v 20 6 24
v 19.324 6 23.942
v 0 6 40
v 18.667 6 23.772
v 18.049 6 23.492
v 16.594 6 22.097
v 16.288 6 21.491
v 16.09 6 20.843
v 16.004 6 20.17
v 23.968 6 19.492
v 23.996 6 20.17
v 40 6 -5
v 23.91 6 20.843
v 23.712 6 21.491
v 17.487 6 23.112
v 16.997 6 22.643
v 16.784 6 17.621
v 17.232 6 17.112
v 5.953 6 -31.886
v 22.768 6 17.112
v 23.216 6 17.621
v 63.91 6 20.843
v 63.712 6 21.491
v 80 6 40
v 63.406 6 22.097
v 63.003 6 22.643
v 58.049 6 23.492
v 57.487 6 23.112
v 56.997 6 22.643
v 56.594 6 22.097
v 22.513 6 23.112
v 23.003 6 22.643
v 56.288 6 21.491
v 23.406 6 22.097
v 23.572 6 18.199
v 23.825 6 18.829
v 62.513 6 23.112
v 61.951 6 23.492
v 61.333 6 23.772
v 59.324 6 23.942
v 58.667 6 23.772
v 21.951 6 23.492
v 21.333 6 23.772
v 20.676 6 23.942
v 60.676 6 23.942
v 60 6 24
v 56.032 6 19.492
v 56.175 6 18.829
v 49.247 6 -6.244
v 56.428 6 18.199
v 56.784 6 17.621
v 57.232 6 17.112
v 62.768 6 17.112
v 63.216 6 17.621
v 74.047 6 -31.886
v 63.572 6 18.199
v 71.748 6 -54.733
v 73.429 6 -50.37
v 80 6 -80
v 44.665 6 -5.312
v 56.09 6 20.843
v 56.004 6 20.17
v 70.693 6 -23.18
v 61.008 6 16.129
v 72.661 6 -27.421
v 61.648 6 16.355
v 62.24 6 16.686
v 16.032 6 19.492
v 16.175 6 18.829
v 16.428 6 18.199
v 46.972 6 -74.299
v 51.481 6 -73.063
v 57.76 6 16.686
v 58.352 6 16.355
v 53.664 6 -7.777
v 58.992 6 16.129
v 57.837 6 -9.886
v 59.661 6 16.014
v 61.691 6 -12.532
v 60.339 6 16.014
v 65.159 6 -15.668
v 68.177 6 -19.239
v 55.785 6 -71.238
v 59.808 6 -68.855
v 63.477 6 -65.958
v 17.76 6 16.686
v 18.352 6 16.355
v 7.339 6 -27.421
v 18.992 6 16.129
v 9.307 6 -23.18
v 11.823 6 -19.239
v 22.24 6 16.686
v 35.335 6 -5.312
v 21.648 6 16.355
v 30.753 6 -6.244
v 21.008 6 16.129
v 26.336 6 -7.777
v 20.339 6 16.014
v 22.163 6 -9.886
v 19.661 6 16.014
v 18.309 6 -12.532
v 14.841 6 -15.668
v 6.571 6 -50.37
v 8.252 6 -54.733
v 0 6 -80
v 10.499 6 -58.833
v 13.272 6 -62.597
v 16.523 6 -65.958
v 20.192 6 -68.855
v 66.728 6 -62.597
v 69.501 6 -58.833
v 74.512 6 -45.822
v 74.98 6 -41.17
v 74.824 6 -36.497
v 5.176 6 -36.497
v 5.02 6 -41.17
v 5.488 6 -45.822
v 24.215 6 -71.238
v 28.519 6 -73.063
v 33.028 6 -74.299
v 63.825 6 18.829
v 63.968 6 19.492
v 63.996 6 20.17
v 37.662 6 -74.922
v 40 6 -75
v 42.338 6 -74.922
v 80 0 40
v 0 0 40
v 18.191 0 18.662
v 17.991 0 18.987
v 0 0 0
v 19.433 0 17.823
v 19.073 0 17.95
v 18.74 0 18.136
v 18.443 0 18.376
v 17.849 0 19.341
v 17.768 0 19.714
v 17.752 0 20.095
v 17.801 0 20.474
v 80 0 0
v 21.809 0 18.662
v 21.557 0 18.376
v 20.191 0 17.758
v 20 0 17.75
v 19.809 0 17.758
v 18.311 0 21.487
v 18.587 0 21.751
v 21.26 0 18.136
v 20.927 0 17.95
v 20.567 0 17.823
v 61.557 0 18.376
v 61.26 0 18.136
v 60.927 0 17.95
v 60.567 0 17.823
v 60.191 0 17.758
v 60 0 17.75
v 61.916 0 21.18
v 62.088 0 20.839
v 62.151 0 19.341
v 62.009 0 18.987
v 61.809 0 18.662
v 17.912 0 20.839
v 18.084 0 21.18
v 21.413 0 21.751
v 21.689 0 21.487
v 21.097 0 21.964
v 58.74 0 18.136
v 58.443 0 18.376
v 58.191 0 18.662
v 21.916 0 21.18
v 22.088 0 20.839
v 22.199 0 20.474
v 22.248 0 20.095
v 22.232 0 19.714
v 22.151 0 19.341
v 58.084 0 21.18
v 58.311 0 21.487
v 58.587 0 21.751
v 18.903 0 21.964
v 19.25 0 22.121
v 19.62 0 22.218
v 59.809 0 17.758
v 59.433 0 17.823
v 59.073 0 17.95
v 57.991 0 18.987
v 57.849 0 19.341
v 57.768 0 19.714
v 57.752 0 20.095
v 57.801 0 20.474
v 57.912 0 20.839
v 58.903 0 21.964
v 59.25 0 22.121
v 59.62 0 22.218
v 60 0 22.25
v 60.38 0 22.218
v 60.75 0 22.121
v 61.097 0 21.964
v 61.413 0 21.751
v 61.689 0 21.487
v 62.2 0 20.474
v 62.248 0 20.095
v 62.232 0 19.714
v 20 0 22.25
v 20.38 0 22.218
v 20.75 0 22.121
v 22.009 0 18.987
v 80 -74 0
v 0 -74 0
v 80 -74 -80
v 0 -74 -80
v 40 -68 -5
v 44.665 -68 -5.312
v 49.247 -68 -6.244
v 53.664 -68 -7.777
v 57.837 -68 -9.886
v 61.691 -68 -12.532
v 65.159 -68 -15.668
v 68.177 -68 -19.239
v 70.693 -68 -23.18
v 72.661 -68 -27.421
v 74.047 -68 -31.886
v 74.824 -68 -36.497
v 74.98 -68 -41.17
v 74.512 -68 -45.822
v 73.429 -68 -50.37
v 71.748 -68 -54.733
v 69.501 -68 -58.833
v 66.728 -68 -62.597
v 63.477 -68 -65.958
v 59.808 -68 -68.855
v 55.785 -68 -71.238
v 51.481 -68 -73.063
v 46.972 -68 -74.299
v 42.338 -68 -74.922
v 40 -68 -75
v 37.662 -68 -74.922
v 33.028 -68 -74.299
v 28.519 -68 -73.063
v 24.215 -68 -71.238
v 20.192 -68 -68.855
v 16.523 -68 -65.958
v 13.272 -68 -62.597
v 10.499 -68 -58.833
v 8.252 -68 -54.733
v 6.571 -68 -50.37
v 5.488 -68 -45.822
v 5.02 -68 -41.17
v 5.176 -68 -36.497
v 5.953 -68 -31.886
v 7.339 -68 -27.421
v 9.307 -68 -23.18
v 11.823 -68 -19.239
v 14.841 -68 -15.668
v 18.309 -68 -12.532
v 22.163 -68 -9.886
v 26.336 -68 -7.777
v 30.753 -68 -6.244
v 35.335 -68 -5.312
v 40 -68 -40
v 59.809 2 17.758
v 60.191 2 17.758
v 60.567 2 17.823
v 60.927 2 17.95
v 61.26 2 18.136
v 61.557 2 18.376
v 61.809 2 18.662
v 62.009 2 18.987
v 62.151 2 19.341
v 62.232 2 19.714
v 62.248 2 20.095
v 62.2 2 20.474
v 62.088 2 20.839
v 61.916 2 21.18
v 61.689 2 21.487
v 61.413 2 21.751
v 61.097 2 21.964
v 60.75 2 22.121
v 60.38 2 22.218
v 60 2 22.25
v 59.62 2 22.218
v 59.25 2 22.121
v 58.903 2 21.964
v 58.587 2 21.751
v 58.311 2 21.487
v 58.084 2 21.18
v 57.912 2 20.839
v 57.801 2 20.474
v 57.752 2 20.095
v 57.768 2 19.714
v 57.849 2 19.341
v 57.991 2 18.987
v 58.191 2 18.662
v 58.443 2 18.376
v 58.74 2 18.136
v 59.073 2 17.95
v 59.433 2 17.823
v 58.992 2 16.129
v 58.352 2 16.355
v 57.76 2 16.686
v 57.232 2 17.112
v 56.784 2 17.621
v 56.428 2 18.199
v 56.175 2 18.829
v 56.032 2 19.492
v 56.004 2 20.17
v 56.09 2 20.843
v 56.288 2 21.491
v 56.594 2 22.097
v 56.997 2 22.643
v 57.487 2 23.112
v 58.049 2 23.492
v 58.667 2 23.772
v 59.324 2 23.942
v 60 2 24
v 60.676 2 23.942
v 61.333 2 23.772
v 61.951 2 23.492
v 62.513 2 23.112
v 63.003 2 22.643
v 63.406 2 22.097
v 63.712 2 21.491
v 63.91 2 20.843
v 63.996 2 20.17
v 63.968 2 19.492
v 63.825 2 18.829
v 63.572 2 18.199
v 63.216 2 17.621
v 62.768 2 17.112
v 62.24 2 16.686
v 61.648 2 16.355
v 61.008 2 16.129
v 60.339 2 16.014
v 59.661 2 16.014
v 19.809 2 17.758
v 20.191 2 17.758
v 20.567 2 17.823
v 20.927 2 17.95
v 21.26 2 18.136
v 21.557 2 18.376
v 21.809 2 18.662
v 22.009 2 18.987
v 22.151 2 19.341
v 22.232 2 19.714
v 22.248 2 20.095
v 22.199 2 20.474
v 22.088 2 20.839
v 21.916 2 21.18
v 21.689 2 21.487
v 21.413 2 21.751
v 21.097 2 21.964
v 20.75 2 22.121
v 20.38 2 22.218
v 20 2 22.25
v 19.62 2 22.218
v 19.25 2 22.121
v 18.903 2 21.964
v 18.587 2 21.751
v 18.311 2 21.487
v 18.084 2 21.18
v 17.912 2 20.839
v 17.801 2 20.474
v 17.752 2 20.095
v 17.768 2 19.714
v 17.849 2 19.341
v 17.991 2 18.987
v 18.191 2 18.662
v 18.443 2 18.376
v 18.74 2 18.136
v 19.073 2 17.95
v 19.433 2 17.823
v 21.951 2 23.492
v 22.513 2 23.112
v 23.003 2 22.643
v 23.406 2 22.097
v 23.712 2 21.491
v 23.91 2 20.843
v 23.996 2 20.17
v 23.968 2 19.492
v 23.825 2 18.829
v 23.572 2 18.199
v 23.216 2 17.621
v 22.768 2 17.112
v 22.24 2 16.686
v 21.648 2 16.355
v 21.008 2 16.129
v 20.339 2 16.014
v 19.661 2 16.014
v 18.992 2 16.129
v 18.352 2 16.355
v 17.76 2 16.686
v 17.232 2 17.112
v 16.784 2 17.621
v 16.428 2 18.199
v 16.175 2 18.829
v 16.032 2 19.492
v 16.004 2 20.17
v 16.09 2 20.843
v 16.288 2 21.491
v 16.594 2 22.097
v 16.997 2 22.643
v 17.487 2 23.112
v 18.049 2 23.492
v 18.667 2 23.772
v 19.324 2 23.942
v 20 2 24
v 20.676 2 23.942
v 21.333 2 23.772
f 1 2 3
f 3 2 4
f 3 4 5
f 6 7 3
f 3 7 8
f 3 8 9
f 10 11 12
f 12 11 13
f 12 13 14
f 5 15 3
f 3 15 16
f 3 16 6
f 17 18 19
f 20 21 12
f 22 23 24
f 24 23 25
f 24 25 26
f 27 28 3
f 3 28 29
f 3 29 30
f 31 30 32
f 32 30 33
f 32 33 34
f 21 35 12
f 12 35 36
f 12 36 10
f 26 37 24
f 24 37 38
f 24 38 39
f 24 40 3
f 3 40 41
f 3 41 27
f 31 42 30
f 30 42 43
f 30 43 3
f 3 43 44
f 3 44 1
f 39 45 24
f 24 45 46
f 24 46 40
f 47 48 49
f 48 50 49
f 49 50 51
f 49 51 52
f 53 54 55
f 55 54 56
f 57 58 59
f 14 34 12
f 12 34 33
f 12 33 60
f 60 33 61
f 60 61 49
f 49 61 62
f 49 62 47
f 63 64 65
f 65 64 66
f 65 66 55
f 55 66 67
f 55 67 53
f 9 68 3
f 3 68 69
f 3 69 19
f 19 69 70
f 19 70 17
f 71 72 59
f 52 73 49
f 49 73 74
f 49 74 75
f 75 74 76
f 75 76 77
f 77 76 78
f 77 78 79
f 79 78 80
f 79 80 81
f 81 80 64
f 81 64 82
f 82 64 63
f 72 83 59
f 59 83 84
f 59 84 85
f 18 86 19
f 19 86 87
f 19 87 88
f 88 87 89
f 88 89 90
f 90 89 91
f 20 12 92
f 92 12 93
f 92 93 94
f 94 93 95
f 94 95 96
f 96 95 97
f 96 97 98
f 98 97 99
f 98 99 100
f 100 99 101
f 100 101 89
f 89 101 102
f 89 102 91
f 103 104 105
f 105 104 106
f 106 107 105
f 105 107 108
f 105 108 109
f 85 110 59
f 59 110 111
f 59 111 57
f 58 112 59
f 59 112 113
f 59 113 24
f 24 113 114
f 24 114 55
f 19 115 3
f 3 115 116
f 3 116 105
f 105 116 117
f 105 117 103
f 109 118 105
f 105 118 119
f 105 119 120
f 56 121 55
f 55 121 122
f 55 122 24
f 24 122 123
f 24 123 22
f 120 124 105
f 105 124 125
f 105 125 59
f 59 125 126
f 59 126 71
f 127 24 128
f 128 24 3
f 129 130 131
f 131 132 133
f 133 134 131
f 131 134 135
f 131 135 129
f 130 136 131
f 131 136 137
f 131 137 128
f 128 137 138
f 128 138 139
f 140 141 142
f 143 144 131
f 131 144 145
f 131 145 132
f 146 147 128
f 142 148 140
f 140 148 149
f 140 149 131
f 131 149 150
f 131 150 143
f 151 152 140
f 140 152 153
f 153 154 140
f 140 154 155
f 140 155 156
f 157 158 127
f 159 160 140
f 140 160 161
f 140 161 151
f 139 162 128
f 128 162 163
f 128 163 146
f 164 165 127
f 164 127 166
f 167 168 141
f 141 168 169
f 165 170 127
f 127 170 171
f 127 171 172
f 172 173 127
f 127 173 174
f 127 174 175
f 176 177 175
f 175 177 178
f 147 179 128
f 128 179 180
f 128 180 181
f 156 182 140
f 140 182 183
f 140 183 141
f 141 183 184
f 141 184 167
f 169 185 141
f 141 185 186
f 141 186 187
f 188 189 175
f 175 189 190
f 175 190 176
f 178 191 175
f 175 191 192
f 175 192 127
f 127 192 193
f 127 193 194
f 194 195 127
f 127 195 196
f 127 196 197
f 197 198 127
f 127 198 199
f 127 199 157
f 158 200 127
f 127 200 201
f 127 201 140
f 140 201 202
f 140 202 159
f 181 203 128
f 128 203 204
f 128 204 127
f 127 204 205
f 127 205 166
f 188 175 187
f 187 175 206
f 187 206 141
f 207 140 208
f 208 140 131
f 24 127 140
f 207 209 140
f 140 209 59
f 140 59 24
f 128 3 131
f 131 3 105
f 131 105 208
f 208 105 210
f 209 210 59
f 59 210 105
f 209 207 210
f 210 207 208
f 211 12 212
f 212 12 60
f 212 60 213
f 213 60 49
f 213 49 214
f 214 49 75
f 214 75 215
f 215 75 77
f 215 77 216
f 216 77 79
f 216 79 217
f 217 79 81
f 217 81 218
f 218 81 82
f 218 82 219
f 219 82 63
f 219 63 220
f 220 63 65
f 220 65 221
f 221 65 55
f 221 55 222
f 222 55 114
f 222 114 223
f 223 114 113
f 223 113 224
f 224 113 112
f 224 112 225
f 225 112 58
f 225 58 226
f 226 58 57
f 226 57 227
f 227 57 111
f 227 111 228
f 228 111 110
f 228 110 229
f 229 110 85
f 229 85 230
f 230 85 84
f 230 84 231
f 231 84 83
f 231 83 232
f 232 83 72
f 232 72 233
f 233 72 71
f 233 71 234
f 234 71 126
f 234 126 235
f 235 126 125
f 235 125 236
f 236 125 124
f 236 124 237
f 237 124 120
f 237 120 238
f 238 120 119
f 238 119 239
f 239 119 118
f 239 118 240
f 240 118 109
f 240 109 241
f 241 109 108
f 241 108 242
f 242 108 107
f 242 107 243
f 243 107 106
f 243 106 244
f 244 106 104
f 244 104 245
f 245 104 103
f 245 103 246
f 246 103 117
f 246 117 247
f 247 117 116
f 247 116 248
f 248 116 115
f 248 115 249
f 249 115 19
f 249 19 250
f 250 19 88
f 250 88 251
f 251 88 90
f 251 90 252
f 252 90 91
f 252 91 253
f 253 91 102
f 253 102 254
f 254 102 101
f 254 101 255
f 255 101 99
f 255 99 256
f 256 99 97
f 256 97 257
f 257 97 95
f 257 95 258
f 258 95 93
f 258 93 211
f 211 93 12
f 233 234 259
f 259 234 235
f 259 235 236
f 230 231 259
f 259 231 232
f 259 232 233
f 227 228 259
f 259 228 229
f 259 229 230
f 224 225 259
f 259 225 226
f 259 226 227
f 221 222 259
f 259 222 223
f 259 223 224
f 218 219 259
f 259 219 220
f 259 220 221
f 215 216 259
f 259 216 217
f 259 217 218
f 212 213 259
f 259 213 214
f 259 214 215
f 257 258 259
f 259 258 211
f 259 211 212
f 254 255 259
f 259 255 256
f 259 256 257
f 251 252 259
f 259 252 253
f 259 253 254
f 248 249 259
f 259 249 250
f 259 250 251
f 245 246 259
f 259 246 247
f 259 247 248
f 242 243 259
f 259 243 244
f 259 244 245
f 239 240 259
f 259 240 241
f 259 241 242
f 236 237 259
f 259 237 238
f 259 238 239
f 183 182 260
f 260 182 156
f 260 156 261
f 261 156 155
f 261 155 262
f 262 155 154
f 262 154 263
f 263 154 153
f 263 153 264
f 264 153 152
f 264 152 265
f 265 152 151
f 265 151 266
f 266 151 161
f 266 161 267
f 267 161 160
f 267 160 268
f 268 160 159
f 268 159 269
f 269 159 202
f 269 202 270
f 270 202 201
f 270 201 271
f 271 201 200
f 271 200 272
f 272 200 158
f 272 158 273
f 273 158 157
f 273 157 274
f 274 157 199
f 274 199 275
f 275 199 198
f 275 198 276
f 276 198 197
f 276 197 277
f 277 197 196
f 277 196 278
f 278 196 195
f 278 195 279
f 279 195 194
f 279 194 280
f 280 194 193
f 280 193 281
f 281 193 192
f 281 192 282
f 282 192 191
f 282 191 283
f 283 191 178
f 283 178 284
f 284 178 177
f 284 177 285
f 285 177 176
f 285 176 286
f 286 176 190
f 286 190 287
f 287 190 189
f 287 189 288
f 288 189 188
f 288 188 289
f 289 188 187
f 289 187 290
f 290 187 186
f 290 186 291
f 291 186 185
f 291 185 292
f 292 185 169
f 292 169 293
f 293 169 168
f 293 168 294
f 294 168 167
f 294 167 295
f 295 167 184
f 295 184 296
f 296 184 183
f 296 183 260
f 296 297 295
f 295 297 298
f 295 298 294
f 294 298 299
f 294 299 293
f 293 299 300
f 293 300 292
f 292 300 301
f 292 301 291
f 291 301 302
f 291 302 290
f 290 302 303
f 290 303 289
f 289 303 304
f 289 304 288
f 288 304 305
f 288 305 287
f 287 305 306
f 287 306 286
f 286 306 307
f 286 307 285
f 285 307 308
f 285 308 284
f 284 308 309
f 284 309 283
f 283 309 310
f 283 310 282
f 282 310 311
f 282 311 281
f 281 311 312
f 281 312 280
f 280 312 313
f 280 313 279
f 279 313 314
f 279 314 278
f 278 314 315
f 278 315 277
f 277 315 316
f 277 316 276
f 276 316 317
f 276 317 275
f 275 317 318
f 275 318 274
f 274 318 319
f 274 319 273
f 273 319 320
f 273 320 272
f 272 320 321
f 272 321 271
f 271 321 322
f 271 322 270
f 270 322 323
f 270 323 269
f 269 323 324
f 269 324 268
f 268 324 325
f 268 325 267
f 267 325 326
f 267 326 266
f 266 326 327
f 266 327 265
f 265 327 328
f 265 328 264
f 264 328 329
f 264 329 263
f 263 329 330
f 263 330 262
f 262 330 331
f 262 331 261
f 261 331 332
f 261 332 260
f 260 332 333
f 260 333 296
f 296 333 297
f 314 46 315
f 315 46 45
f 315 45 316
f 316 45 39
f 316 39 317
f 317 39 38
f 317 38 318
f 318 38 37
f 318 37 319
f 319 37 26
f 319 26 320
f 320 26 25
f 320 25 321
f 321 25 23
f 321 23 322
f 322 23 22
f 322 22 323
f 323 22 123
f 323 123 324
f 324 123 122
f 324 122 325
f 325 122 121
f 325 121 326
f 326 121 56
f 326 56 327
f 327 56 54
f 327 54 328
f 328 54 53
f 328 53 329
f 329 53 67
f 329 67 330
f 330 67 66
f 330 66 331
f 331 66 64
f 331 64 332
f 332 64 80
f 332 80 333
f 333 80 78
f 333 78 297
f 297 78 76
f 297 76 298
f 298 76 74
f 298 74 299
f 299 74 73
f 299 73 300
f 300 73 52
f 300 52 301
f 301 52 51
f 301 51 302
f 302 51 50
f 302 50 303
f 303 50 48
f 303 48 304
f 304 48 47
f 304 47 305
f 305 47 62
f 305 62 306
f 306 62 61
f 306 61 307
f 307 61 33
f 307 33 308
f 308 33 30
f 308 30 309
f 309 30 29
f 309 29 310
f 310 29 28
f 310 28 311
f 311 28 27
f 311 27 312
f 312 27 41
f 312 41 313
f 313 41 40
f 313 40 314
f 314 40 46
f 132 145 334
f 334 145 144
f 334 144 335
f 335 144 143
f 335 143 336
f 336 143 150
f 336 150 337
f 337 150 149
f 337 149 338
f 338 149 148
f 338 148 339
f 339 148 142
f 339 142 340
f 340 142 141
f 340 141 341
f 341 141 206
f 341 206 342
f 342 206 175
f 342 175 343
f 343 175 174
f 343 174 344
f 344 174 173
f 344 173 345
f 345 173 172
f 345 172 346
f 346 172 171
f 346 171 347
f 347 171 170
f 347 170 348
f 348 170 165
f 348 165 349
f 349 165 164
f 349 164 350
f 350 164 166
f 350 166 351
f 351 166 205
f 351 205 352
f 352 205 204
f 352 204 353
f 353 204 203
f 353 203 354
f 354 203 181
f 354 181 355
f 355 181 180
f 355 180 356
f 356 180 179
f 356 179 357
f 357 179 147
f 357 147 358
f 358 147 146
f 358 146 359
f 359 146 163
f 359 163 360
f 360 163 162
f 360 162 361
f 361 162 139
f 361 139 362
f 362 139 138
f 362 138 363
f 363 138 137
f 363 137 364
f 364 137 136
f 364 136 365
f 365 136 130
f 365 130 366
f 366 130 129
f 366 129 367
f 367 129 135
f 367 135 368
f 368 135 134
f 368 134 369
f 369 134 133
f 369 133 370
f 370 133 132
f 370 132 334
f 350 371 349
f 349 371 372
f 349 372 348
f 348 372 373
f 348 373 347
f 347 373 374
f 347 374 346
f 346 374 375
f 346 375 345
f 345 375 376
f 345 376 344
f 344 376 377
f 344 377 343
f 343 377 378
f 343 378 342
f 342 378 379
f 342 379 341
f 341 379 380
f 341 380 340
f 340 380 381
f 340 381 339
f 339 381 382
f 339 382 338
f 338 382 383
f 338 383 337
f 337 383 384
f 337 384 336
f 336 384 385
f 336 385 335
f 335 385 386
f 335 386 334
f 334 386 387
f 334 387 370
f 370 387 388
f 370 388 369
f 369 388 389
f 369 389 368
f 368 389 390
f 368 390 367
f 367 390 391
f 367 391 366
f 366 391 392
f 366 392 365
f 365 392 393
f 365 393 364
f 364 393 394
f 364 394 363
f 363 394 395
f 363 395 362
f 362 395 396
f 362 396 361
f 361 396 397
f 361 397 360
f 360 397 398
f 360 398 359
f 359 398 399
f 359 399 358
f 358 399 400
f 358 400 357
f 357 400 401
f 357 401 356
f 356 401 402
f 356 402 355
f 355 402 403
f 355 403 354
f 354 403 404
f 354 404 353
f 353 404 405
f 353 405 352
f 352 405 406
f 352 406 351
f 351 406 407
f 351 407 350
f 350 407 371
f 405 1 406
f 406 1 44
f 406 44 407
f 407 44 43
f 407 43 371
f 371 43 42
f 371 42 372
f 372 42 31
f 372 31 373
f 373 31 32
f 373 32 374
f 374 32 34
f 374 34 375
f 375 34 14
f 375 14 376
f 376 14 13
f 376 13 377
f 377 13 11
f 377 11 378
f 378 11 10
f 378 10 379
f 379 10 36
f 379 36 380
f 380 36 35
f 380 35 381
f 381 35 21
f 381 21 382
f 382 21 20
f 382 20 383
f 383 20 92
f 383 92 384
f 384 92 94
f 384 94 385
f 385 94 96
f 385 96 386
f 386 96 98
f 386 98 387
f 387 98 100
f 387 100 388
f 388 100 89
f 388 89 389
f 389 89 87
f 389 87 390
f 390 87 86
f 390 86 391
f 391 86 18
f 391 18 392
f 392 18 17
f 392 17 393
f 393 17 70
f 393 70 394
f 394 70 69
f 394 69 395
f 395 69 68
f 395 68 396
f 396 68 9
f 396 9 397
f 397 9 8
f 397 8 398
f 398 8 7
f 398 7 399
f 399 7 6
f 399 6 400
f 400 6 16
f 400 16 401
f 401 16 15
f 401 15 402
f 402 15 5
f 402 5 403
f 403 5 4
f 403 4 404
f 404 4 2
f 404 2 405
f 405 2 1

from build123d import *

# Parameters (mm, degrees)
EXTRUDE_THIN1_DEPTH            = 80
SKETCH4_W                      = 80
SKETCH4_H                      = 80
BOSS_EXTRUDE1_DEPTH            = 80
SKETCH5_R                      = 35
CUT_EXTRUDE1_DEPTH             = 1
CUT_EXTRUDE1_DEPTH_BACK        = 74
CBORE_FOR_M4_SHCS1_D           = 4.5
CBORE_FOR_M4_SHCS1_DEPTH       = 6
CBORE_FOR_M4_SHCS1_CBORE_D     = 8
CBORE_FOR_M4_SHCS1_CBORE_DEPTH = 4


with BuildPart() as part:
    # Sketch1 → Extrude-Thin1 (new body)
    with BuildSketch(Plane(origin=(0, 0, 0), x_dir=(0, 0, -1), z_dir=(1, 0, 0))):
        Polygon((0, -40), (0, 0), (-40, 0), (-40, 6), (6, 6), (6, -40), align=None)
    extrude(amount=EXTRUDE_THIN1_DEPTH)

    # Sketch4 → Boss-Extrude1 (add)
    with BuildSketch(Plane(origin=(0, 6, 0), x_dir=(1, 0, 0), z_dir=(0, 1, 0))):
        with Locations((40, 40)):
            Rectangle(SKETCH4_W, SKETCH4_H)
    extrude(amount=-BOSS_EXTRUDE1_DEPTH)

    # Sketch5 → Cut-Extrude1 (cut, two sides)
    with BuildSketch(Plane(origin=(0, 6, 0), x_dir=(1, 0, 0), z_dir=(0, 1, 0))) as cut_extrude1_sk:
        with Locations((40, 40)):
            Circle(SKETCH5_R)
    extrude(amount=CUT_EXTRUDE1_DEPTH, mode=Mode.SUBTRACT)
    extrude(cut_extrude1_sk.sketch, amount=-CUT_EXTRUDE1_DEPTH_BACK, mode=Mode.SUBTRACT)

    # CBORE for M4 SHCS1
    with Locations(Plane(origin=(0, 6, 0), x_dir=(1, 0, 0), z_dir=(0, 1, 0))):
        with Locations((60, -20), (20, -20)):
            CounterBoreHole(CBORE_FOR_M4_SHCS1_D / 2, CBORE_FOR_M4_SHCS1_CBORE_D / 2, CBORE_FOR_M4_SHCS1_CBORE_DEPTH, depth=CBORE_FOR_M4_SHCS1_DEPTH)


solid = part.part
